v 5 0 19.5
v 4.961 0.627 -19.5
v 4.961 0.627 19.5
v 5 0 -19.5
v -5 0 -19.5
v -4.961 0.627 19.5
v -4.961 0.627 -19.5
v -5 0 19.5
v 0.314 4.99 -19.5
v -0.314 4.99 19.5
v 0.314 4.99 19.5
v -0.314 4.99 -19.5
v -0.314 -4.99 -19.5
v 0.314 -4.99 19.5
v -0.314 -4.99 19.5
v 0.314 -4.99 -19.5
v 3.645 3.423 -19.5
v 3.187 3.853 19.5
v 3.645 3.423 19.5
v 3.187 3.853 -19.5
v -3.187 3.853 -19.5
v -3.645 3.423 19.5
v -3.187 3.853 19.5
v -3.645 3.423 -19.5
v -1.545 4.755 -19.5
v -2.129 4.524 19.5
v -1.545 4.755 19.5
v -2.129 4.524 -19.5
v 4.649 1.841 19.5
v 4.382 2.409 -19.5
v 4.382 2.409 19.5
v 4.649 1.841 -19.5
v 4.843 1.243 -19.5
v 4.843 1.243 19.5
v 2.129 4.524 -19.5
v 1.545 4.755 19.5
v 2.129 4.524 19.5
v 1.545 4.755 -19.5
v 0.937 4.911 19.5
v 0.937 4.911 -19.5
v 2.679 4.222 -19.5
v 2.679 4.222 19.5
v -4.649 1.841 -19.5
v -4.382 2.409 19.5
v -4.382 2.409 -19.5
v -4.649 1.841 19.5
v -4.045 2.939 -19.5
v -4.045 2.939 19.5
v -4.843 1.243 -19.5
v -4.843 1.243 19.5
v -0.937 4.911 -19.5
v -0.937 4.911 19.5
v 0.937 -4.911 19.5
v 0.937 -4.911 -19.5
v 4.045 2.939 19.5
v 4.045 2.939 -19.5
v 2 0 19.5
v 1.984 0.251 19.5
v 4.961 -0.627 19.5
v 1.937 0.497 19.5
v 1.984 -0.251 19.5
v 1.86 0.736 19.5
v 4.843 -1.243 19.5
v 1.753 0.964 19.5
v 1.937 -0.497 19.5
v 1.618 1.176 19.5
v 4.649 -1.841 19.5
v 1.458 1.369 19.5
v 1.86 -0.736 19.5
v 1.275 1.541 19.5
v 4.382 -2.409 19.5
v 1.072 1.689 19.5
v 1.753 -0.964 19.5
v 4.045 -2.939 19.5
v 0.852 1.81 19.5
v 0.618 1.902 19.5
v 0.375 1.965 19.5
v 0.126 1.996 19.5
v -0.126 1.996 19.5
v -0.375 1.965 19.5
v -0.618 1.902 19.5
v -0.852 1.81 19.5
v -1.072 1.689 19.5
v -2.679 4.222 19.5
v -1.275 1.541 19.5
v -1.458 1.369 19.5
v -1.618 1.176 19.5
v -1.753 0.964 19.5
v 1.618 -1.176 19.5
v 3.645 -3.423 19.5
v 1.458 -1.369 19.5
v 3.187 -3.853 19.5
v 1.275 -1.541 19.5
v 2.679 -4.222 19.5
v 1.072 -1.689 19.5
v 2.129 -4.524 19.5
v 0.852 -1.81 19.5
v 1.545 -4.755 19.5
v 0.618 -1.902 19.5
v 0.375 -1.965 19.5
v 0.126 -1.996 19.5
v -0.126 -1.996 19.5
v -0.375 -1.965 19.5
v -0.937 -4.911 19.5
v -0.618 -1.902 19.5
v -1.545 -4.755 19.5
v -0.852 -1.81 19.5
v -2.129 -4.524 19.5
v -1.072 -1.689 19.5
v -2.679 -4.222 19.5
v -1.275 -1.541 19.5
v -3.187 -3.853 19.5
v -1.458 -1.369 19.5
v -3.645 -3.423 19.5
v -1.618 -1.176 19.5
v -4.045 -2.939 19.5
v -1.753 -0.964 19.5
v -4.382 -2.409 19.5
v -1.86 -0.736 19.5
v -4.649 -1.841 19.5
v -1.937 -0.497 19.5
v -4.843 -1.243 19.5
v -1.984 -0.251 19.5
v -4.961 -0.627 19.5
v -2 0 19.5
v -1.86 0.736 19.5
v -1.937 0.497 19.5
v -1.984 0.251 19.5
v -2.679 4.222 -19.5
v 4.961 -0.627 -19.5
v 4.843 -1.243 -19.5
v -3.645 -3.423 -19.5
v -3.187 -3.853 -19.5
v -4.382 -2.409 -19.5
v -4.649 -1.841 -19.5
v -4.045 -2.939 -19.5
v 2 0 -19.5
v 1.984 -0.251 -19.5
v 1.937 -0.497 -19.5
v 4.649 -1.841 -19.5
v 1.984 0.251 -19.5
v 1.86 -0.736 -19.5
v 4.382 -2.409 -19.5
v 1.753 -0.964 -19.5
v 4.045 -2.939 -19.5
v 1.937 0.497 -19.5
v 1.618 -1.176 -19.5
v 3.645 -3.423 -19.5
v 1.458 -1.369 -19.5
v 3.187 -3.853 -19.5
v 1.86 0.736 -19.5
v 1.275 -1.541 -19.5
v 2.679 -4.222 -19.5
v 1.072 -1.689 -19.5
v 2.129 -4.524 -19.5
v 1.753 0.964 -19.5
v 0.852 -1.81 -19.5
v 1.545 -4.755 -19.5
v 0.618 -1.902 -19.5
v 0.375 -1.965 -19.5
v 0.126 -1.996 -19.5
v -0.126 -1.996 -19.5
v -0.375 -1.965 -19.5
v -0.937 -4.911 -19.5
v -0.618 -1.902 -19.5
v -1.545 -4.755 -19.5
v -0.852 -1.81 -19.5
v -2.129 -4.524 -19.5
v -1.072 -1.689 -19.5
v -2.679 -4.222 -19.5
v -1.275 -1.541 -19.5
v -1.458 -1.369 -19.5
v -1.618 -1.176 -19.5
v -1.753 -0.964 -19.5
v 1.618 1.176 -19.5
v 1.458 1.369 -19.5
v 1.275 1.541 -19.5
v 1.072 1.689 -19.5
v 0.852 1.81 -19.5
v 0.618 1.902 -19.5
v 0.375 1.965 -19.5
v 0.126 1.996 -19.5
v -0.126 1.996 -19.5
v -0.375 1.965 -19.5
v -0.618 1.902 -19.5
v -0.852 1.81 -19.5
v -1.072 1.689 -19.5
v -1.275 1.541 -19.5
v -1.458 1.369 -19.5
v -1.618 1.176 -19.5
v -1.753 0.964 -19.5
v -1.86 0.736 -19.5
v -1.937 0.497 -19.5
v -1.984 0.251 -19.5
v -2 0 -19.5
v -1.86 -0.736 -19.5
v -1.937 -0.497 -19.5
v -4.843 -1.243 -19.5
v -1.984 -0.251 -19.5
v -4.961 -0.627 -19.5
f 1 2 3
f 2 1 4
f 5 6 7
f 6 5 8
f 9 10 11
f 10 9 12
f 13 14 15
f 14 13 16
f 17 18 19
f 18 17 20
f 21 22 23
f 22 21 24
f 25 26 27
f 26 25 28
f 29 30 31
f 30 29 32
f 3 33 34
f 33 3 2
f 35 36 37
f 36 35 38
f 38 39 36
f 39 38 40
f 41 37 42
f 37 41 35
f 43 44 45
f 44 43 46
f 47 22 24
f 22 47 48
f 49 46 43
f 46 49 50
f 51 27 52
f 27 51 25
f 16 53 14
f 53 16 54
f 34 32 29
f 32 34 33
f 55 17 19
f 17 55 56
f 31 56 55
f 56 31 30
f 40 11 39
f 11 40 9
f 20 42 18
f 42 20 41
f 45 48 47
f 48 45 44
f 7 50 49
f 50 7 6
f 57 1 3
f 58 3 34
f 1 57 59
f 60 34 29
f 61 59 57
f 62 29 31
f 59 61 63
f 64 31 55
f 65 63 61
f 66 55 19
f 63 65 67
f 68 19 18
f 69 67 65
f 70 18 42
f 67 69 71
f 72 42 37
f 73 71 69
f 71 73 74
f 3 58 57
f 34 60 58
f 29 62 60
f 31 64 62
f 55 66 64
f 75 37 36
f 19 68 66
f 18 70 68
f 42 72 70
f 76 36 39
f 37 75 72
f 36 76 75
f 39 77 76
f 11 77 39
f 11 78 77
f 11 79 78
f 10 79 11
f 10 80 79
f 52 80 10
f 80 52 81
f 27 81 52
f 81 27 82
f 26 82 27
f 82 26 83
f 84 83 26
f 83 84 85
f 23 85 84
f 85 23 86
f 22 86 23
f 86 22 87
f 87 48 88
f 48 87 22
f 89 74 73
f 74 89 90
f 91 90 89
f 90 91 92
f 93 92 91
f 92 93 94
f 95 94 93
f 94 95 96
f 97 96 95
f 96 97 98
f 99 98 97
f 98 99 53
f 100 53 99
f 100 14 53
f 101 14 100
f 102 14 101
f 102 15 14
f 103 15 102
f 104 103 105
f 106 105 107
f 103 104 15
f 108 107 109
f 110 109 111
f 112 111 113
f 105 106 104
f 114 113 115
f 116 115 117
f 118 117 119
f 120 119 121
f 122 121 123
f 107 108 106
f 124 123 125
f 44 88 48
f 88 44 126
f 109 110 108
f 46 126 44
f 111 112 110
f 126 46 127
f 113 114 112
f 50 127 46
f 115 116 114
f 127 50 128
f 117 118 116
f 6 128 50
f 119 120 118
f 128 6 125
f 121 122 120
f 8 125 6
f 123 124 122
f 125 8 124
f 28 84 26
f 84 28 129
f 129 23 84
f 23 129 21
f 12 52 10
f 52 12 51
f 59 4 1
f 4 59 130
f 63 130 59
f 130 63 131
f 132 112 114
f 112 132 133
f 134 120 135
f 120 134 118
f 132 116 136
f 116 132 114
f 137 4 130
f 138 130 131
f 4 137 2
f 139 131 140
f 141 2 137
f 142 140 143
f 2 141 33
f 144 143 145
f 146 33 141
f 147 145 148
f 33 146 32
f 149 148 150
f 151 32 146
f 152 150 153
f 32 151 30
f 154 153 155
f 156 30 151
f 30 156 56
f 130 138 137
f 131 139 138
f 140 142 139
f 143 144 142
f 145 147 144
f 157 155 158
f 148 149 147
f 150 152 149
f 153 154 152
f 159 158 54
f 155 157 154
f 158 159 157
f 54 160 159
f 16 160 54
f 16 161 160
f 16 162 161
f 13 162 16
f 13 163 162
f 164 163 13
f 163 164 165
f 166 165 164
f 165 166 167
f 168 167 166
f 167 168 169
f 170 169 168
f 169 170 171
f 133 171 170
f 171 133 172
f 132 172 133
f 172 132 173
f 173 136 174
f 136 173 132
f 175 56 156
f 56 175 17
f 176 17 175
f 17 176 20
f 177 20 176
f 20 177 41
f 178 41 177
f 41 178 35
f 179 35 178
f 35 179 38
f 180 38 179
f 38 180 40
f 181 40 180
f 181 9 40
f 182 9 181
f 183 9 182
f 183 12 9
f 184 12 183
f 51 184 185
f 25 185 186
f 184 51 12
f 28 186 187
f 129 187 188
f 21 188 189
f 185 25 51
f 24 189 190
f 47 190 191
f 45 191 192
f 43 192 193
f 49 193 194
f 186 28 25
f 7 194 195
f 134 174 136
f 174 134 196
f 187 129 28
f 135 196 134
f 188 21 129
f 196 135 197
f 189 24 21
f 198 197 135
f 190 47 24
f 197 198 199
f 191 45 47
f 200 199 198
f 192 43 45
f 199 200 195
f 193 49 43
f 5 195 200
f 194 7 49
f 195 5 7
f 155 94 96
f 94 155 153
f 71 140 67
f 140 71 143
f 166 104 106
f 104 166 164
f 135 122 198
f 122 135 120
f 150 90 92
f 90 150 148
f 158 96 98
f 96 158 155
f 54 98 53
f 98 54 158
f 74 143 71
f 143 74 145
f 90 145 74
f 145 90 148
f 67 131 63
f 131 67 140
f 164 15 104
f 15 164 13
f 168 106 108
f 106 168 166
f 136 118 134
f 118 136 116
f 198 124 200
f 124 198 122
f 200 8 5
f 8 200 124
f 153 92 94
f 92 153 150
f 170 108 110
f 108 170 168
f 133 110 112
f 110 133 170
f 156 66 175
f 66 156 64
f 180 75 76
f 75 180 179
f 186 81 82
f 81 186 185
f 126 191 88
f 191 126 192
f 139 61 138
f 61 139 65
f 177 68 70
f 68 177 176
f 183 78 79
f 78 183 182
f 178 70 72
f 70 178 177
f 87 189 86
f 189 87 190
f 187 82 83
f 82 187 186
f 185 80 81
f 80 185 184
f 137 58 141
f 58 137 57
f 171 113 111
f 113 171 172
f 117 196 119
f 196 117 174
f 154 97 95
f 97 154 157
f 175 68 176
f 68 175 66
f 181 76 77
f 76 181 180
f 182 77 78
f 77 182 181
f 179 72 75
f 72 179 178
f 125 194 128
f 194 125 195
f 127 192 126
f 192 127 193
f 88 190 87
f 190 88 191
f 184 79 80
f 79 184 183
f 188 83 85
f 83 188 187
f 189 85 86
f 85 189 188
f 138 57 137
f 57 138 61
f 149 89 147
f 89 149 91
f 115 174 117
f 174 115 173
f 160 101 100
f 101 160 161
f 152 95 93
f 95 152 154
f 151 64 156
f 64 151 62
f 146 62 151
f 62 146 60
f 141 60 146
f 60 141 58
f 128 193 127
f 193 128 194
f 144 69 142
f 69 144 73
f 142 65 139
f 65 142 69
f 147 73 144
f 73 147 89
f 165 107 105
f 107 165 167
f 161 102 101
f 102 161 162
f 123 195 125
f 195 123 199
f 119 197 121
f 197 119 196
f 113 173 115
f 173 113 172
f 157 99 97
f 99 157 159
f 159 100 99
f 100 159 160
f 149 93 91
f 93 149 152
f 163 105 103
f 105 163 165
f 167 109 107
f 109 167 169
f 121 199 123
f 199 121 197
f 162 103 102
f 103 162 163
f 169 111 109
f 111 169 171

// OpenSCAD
$fn = 50;


difference() {
	union() {
		translate(v = [0, 0, -19.5000000000]) {
			cylinder(h = 39, r = 5.0000000000);
		}
	}
	union() {
		translate(v = [0, 0, -100.0000000000]) {
			cylinder(h = 200, r = 2);
		}
	}
}
